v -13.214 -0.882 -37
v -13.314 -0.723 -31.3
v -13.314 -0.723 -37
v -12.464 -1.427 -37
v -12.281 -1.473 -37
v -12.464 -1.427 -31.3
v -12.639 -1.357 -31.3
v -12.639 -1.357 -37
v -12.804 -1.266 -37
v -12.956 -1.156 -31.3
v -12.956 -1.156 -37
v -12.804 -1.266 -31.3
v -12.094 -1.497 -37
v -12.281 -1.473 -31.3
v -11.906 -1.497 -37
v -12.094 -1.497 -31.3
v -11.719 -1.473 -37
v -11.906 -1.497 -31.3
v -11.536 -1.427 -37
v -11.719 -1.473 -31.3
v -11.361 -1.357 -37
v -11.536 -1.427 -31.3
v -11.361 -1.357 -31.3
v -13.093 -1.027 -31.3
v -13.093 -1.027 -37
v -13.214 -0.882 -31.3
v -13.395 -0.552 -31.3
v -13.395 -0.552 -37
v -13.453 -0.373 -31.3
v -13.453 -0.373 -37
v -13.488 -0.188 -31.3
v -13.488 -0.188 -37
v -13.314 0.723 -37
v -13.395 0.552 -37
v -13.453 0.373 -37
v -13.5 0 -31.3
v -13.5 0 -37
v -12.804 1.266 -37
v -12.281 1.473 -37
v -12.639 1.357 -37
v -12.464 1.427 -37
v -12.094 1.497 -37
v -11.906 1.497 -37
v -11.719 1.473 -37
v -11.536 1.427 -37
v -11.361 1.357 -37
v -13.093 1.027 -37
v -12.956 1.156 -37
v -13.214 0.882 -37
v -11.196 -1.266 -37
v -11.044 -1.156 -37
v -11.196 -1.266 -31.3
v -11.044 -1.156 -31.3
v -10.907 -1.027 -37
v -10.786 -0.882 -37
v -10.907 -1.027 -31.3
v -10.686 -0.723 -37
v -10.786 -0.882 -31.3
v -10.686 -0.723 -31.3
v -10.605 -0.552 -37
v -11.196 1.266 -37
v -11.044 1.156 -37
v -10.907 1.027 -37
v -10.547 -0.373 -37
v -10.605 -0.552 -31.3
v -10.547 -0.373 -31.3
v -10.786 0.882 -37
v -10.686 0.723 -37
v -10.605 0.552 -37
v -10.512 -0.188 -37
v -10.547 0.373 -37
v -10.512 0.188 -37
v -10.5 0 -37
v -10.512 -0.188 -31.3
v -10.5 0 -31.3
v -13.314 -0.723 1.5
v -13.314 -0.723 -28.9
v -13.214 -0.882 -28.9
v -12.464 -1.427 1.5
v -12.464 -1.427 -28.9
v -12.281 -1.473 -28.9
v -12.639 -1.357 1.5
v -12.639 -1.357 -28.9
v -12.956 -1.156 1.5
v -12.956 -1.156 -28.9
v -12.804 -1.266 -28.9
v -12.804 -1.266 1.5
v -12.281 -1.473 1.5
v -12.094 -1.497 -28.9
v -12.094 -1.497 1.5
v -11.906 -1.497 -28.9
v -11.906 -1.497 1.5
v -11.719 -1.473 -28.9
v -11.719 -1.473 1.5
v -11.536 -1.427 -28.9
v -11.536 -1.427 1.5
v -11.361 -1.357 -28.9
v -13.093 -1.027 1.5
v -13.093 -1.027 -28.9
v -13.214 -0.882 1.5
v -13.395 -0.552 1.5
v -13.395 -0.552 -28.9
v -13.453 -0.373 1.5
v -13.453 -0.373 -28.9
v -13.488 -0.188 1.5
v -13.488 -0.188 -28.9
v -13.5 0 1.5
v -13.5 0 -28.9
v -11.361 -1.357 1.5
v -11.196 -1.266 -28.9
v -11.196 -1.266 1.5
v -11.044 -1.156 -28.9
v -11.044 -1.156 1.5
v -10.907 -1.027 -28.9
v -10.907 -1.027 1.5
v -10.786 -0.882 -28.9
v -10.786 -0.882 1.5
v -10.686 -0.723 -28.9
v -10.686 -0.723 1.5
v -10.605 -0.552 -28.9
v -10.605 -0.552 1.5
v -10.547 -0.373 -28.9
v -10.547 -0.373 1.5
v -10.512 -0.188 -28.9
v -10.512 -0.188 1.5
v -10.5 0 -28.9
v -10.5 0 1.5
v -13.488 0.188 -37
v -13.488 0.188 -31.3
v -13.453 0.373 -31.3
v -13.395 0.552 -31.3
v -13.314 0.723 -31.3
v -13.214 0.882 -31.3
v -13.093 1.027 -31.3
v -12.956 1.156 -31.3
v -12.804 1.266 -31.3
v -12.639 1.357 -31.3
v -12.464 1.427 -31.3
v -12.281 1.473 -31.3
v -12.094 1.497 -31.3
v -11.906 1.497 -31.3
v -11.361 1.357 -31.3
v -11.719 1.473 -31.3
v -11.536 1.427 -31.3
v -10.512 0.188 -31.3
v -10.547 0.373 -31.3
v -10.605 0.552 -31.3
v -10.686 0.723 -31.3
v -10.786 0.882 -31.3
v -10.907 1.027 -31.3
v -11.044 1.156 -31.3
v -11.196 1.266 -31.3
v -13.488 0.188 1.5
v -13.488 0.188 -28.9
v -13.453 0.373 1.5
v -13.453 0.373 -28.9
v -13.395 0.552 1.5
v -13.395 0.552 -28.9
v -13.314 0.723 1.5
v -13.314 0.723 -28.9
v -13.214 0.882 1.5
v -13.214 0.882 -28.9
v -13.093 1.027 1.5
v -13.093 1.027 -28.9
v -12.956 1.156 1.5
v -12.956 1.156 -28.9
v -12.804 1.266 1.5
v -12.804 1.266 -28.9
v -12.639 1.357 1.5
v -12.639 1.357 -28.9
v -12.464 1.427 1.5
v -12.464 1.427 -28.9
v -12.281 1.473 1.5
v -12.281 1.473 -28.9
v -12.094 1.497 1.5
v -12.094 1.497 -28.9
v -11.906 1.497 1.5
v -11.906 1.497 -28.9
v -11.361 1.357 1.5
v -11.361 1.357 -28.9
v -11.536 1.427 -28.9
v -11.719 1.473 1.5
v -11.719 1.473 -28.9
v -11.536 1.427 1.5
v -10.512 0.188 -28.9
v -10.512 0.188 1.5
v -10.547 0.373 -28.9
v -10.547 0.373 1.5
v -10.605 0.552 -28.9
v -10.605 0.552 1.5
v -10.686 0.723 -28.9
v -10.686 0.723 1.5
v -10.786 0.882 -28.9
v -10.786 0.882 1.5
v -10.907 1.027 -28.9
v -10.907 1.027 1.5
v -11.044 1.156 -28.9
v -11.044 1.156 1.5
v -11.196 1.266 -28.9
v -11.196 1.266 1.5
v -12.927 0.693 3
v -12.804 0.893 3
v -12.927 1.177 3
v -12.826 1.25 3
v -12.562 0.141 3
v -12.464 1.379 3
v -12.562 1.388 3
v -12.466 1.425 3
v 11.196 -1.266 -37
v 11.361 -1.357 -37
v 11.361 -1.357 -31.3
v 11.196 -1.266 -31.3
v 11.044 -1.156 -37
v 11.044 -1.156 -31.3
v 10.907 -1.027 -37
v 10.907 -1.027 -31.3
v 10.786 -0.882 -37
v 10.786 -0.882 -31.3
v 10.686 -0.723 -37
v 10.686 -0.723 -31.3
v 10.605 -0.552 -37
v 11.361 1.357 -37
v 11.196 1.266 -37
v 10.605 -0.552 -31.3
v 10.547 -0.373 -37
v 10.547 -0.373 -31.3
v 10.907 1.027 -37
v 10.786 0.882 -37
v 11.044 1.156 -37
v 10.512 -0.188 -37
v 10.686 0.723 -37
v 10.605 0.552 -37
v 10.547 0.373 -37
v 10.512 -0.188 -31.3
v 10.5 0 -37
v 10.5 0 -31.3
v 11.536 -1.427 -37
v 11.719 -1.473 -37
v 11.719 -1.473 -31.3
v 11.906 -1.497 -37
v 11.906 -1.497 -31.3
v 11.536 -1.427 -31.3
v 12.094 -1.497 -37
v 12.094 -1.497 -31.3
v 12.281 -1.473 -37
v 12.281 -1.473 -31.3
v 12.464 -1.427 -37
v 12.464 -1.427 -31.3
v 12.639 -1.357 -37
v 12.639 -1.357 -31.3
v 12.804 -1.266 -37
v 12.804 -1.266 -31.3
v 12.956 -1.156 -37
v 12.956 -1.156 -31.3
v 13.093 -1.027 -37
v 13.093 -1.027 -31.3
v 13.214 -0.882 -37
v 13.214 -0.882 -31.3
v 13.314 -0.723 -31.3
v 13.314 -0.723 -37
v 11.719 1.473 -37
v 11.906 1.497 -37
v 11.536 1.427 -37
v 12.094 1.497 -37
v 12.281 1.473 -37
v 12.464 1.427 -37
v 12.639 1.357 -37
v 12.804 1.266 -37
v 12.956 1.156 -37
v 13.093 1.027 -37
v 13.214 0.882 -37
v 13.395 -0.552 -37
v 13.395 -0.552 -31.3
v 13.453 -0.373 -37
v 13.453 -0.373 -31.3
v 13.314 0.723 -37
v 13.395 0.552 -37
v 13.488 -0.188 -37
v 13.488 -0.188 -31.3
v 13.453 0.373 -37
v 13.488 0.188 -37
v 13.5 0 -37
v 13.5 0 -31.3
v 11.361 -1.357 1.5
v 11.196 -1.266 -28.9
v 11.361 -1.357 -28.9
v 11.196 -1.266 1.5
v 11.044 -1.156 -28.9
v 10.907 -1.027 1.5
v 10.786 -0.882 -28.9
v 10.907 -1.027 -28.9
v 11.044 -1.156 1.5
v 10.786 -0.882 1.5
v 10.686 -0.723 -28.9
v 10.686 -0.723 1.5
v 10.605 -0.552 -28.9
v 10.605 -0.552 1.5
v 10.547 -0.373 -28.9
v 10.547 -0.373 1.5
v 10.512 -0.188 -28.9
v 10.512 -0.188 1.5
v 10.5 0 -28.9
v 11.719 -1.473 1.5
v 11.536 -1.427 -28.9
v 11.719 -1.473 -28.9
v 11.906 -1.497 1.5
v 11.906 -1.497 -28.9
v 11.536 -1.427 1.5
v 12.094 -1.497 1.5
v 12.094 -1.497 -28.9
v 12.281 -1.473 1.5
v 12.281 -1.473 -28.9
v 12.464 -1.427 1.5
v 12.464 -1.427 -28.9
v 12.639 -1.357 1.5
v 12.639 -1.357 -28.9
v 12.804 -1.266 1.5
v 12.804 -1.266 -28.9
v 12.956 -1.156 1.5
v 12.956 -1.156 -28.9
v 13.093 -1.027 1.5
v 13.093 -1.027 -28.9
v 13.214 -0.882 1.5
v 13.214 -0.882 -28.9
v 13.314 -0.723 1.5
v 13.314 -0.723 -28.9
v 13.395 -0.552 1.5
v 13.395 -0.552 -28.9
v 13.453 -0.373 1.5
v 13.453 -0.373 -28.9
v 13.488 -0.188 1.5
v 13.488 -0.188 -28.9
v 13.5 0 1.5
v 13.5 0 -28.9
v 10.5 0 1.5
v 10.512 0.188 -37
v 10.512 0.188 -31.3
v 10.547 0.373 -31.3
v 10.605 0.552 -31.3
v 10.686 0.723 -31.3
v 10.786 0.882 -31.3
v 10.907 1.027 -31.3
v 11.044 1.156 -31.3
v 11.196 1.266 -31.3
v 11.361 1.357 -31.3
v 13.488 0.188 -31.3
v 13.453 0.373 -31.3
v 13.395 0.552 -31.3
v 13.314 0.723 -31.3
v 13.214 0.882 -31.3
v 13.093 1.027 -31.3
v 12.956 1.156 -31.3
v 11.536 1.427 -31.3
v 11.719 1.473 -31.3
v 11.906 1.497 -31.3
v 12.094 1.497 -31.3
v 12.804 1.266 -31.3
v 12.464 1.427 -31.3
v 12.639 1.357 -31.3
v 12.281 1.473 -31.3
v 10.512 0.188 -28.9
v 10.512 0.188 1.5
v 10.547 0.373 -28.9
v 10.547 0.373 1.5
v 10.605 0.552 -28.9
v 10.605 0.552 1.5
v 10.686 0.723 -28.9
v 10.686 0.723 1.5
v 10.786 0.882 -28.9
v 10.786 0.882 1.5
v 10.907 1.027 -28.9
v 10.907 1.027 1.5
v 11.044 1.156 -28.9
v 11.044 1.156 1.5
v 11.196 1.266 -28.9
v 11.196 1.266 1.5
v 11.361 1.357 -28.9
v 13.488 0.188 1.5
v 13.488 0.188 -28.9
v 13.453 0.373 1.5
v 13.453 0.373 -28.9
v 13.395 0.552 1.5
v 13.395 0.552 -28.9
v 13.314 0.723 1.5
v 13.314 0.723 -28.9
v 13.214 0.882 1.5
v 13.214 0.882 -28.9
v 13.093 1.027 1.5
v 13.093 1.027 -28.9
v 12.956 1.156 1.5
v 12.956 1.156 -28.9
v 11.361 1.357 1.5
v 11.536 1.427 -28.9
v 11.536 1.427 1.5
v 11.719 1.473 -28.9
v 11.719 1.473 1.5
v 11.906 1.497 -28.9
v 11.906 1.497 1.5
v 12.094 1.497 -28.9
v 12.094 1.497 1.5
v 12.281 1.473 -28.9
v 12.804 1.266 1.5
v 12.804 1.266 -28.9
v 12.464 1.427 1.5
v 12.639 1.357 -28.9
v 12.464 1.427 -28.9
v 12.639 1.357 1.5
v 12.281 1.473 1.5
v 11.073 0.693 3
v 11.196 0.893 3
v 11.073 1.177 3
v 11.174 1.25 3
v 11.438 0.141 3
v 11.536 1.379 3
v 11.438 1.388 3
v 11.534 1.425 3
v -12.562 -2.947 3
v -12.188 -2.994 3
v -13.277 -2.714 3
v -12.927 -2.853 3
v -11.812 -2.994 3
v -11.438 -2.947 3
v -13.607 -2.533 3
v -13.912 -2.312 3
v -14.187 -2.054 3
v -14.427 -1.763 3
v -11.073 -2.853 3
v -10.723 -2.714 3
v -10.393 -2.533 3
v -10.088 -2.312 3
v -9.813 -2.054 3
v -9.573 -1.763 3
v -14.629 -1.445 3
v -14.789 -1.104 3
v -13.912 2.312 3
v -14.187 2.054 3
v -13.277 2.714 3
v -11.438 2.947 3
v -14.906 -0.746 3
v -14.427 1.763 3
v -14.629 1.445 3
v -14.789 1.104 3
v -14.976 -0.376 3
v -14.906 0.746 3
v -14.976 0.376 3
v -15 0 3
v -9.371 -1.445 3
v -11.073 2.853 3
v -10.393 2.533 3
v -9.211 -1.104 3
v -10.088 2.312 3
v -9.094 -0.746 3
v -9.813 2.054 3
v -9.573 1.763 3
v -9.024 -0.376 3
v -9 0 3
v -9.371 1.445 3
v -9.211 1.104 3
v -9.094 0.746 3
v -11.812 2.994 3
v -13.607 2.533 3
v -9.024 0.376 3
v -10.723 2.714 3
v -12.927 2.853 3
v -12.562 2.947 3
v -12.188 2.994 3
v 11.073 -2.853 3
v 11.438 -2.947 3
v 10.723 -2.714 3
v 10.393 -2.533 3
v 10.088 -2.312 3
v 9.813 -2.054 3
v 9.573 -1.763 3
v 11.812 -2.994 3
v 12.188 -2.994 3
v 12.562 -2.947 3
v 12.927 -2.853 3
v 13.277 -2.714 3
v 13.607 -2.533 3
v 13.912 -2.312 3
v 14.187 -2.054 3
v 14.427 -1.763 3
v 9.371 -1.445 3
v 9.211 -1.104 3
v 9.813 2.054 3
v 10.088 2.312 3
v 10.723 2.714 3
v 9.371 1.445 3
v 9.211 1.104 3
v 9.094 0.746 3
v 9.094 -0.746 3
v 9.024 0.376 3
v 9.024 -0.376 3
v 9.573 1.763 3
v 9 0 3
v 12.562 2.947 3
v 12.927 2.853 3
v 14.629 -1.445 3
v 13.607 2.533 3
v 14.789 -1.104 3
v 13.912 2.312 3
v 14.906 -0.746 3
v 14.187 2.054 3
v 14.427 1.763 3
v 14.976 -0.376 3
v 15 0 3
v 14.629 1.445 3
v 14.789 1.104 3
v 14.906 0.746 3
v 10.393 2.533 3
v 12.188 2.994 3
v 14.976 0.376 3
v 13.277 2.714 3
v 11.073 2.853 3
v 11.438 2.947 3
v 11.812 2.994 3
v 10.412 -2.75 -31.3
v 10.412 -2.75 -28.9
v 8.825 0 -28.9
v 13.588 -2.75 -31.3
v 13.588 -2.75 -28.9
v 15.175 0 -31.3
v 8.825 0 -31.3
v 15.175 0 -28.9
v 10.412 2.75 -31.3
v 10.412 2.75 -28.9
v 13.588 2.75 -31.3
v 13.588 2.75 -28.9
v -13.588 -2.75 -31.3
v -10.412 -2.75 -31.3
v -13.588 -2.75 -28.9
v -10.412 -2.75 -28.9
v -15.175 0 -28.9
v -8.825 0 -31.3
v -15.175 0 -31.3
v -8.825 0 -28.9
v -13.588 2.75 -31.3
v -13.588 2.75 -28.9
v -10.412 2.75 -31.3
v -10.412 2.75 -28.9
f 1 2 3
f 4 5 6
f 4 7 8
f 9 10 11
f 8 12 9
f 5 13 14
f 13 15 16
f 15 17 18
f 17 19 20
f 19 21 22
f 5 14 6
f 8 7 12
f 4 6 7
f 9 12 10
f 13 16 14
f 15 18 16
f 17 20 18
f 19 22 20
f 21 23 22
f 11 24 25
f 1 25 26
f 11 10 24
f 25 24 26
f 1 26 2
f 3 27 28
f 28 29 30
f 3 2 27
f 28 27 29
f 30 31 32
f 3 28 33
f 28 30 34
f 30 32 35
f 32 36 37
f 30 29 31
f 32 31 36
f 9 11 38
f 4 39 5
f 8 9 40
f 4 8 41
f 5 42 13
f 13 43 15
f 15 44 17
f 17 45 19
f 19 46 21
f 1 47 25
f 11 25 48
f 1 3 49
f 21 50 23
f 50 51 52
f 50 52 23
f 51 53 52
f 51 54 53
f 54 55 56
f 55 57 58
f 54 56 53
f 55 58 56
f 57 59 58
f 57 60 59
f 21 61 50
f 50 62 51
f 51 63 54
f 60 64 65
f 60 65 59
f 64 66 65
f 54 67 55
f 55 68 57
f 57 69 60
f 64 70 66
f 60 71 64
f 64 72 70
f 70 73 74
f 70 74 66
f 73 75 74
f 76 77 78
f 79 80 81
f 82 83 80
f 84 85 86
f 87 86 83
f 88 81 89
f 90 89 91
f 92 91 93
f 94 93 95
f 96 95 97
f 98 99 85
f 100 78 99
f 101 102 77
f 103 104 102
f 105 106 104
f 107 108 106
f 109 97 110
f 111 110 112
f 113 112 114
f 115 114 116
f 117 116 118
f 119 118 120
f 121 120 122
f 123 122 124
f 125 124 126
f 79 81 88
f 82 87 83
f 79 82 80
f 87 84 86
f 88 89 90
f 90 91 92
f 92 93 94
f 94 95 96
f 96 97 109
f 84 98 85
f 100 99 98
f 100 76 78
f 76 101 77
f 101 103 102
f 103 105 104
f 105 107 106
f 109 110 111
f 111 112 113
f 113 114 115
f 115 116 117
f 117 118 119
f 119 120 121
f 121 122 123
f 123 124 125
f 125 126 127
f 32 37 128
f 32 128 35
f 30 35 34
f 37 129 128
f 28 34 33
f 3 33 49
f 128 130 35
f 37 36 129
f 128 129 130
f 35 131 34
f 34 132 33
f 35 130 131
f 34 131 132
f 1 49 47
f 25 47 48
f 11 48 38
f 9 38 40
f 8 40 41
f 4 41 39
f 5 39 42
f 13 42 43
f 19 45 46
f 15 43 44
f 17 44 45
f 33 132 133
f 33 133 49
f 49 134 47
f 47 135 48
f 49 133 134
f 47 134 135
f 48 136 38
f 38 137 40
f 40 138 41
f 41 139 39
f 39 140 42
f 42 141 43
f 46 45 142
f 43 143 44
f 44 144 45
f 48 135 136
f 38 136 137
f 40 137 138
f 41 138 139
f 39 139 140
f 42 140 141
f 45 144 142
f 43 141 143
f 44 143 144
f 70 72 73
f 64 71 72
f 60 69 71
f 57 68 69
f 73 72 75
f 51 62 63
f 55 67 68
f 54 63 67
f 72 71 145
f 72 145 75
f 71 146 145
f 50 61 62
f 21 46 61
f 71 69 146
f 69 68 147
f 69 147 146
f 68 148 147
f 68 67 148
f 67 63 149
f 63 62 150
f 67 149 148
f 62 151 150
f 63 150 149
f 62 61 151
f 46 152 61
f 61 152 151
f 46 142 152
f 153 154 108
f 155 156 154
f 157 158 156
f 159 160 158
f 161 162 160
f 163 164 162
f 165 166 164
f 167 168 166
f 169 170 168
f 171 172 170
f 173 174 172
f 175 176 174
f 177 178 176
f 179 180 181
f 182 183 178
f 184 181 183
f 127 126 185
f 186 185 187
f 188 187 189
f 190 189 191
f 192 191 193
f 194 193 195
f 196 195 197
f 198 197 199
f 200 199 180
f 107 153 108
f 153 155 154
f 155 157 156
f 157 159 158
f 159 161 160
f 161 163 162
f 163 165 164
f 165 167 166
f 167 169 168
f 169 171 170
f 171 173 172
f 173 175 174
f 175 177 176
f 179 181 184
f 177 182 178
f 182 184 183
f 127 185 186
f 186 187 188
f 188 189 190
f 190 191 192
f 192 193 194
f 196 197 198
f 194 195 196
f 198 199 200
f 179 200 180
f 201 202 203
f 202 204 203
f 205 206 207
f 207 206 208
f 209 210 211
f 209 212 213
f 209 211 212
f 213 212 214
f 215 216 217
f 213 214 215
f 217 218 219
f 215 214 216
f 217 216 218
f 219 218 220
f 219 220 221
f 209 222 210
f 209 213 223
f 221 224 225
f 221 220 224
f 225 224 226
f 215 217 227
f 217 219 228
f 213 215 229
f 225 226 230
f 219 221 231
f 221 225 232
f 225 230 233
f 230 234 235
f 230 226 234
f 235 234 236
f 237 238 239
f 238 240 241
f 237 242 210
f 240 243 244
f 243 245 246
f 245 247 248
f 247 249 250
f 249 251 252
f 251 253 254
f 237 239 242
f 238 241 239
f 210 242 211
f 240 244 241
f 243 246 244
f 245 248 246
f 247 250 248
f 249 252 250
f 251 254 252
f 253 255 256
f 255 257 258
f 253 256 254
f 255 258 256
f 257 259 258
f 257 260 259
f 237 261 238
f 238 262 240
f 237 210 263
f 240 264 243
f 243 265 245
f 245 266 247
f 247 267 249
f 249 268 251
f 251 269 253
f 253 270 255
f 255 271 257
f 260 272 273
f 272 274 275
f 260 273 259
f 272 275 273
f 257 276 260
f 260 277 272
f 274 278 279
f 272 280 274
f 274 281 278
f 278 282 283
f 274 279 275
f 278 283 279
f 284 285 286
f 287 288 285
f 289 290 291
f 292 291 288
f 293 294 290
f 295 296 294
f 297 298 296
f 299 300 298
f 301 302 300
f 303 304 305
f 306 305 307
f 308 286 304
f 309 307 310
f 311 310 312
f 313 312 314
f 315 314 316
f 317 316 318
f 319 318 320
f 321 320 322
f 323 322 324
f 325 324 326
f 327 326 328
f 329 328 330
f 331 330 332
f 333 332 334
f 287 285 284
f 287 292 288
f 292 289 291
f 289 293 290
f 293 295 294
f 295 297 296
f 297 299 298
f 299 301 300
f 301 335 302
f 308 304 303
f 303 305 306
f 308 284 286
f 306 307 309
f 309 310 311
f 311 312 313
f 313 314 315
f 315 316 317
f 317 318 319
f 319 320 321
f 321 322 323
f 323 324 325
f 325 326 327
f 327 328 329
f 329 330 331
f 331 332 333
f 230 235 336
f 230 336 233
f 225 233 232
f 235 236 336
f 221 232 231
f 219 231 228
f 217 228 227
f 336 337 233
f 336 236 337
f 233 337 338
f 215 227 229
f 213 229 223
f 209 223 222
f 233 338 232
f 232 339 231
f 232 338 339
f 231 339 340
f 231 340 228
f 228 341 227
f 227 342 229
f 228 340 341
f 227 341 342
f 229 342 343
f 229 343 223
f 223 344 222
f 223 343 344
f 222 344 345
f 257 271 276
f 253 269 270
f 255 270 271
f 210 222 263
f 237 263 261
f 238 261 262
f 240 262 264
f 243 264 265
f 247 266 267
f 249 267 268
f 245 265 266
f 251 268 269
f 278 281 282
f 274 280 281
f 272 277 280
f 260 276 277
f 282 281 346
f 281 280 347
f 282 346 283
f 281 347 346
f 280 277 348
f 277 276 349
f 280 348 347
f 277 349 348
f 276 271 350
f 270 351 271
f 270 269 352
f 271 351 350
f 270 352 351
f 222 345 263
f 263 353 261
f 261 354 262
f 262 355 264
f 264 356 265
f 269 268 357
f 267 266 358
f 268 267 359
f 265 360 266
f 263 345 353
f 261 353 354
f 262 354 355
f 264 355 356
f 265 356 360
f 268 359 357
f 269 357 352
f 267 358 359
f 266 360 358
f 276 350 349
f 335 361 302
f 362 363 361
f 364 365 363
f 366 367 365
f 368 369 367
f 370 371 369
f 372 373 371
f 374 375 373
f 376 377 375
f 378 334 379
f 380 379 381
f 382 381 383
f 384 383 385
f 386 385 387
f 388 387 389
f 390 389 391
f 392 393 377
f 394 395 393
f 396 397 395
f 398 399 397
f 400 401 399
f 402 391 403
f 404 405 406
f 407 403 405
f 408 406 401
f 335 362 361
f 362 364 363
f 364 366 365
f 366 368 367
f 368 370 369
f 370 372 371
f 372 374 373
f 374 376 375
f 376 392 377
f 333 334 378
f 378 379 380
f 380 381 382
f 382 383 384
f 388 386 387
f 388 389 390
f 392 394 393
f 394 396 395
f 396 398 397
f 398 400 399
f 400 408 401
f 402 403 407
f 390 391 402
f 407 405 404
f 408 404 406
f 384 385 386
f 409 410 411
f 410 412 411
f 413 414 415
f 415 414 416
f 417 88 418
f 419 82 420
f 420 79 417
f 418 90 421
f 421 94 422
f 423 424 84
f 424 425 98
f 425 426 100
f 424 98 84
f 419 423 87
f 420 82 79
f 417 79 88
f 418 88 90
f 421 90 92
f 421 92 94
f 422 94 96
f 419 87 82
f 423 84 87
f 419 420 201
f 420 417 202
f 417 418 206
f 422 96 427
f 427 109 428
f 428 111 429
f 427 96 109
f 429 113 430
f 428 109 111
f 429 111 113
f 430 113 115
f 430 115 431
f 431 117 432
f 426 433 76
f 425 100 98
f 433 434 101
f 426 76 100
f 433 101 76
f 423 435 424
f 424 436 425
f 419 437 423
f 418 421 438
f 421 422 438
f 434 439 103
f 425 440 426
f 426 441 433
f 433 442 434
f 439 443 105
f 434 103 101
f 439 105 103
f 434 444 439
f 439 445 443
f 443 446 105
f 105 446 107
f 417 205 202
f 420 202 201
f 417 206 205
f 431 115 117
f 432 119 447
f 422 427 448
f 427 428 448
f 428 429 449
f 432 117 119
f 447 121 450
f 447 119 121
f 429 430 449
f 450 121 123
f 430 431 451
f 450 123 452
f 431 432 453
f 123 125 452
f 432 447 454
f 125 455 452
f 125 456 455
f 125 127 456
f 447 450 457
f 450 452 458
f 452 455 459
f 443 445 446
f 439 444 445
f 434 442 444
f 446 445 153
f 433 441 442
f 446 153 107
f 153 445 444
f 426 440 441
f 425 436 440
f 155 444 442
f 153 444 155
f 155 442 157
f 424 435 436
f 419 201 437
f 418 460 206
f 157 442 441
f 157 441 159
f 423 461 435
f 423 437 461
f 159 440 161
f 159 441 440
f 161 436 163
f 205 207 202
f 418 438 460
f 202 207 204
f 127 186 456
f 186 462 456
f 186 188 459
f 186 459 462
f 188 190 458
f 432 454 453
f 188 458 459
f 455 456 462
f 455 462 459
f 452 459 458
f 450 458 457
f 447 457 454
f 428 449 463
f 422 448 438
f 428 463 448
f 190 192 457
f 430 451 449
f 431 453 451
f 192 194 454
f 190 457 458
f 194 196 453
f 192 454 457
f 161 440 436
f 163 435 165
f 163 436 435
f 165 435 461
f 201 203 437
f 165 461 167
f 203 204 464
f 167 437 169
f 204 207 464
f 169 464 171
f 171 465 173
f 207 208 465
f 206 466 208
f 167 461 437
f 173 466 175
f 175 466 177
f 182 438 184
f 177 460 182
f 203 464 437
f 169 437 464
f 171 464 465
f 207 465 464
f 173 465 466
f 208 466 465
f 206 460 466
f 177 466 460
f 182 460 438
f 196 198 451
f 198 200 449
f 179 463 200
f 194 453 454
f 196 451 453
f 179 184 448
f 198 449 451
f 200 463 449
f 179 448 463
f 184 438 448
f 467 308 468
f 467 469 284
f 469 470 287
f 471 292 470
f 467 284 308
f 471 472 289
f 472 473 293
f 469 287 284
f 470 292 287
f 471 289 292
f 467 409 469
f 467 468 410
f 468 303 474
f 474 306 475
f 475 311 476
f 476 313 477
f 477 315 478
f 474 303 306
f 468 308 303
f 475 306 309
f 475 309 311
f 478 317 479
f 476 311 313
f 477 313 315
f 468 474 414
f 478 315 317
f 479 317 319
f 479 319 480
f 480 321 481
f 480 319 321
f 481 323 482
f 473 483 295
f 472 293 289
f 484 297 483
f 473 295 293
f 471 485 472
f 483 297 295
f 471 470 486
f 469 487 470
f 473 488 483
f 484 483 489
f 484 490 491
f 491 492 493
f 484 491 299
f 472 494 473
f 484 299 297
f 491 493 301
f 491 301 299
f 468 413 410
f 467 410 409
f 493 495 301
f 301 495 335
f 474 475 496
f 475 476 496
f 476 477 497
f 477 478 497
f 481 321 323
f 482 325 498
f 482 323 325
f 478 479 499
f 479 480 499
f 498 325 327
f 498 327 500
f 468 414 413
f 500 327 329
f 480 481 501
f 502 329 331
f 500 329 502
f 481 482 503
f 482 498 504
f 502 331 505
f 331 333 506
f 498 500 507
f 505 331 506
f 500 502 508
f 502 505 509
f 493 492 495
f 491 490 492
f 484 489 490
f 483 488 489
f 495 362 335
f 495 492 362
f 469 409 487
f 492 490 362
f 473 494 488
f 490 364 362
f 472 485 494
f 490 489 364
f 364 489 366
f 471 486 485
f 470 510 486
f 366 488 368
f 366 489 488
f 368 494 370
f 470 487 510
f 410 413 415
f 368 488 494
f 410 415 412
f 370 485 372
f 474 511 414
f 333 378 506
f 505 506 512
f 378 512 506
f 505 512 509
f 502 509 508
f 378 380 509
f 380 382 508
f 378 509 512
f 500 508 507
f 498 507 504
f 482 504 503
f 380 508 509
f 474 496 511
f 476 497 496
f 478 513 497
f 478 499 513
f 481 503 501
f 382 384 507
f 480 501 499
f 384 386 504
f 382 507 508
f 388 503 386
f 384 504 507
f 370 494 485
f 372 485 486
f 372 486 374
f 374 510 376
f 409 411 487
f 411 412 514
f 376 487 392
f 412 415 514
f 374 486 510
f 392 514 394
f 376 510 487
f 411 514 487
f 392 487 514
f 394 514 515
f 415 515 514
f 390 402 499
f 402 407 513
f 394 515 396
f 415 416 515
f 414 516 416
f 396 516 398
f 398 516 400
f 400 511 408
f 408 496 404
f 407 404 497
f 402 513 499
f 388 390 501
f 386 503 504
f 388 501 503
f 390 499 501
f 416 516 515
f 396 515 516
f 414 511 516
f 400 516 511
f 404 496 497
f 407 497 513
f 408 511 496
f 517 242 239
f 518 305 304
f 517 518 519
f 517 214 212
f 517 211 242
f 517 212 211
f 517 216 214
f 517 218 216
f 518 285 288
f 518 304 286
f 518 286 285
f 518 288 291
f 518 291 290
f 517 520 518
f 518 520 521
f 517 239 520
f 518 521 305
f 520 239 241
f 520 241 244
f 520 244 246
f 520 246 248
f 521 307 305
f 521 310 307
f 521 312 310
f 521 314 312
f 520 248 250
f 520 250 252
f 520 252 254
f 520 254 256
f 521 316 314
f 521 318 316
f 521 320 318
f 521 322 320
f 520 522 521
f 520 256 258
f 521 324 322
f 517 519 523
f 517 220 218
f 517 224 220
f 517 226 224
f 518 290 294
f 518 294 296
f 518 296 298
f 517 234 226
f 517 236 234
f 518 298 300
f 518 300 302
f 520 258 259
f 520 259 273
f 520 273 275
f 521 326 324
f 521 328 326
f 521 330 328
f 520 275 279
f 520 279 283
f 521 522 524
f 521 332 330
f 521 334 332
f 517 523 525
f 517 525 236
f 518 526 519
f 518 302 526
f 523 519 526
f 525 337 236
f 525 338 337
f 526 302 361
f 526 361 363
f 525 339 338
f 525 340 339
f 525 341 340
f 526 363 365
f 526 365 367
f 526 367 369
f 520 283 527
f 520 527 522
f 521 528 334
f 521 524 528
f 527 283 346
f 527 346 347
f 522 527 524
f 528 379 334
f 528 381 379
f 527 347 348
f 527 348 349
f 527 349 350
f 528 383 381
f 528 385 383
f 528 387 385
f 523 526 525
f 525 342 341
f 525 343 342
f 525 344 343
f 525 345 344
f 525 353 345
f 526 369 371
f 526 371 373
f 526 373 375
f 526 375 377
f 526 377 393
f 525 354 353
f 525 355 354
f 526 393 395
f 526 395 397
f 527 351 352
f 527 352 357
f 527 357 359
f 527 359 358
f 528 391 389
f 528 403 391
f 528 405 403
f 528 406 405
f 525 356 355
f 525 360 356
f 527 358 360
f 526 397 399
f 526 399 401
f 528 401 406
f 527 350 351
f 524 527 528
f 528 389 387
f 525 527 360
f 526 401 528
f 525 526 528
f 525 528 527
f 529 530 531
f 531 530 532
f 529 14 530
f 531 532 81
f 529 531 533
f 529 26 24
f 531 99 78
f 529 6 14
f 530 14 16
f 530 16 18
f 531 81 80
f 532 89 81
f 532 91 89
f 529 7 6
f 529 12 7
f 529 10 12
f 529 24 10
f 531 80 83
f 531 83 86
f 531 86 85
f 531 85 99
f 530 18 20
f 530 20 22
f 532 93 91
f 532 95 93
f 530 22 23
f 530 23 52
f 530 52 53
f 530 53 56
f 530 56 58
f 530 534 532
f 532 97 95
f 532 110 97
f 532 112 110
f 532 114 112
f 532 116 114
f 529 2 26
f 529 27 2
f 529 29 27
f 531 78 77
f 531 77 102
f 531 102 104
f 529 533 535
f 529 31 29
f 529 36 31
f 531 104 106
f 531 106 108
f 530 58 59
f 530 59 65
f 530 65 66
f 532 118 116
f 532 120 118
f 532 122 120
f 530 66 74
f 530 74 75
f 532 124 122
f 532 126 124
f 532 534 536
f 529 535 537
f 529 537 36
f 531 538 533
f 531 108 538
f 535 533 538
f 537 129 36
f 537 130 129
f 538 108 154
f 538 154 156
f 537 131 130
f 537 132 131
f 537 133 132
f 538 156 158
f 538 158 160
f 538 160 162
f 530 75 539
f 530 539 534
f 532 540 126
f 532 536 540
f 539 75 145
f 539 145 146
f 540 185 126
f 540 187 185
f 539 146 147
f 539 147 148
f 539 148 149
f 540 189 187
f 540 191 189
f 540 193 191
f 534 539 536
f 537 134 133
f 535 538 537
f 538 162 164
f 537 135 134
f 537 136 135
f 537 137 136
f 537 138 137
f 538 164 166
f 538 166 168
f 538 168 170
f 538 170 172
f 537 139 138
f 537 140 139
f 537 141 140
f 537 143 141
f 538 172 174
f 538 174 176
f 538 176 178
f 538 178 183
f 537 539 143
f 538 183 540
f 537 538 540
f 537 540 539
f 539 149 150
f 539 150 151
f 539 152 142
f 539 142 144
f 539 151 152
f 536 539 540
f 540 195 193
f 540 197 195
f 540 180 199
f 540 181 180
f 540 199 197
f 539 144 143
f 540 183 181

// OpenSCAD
$fn = 50;

difference() {
	union() {
		translate(v = [-12, 0, 3]) {
			rotate(a = [0, 0, 0]) {
				difference() {
					union() {
						translate(v = [0, 0, -40.0]) {
							cylinder(h = 40, r = 1.5);
						}
						translate(v = [0, 0, -1.5]) {
							cylinder(h = 1.5, r1 = 1.5, r2 = 3);
						}
					}
					union();
				}
			}
		}
		translate(v = [-12, 0, -31.3]) {
			rotate(a = [0, 0, 0]) {
				difference() {
					union() {
						linear_extrude(height = 2.4) {
							polygon(points = [[3.1754264805429417, 0.0], [1.5877132402714713, 2.75], [-1.5877132402714702, 2.7500000000000004], [-3.1754264805429417, 3.888775875324659e-16], [-1.5877132402714722, -2.7499999999999996], [1.5877132402714687, -2.7500000000000013]]);
						}
					}
					union();
				}
			}
		}
		translate(v = [12, 0, 3]) {
			rotate(a = [0, 0, 0]) {
				difference() {
					union() {
						translate(v = [0, 0, -40.0]) {
							cylinder(h = 40, r = 1.5);
						}
						translate(v = [0, 0, -1.5]) {
							cylinder(h = 1.5, r1 = 1.5, r2 = 3);
						}
					}
					union();
				}
			}
		}
		translate(v = [12, 0, -31.3]) {
			rotate(a = [0, 0, 0]) {
				difference() {
					union() {
						linear_extrude(height = 2.4) {
							polygon(points = [[3.1754264805429417, 0.0], [1.5877132402714713, 2.75], [-1.5877132402714702, 2.7500000000000004], [-3.1754264805429417, 3.888775875324659e-16], [-1.5877132402714722, -2.7499999999999996], [1.5877132402714687, -2.7500000000000013]]);
						}
					}
					union();
				}
			}
		}
	}
	union();
}
